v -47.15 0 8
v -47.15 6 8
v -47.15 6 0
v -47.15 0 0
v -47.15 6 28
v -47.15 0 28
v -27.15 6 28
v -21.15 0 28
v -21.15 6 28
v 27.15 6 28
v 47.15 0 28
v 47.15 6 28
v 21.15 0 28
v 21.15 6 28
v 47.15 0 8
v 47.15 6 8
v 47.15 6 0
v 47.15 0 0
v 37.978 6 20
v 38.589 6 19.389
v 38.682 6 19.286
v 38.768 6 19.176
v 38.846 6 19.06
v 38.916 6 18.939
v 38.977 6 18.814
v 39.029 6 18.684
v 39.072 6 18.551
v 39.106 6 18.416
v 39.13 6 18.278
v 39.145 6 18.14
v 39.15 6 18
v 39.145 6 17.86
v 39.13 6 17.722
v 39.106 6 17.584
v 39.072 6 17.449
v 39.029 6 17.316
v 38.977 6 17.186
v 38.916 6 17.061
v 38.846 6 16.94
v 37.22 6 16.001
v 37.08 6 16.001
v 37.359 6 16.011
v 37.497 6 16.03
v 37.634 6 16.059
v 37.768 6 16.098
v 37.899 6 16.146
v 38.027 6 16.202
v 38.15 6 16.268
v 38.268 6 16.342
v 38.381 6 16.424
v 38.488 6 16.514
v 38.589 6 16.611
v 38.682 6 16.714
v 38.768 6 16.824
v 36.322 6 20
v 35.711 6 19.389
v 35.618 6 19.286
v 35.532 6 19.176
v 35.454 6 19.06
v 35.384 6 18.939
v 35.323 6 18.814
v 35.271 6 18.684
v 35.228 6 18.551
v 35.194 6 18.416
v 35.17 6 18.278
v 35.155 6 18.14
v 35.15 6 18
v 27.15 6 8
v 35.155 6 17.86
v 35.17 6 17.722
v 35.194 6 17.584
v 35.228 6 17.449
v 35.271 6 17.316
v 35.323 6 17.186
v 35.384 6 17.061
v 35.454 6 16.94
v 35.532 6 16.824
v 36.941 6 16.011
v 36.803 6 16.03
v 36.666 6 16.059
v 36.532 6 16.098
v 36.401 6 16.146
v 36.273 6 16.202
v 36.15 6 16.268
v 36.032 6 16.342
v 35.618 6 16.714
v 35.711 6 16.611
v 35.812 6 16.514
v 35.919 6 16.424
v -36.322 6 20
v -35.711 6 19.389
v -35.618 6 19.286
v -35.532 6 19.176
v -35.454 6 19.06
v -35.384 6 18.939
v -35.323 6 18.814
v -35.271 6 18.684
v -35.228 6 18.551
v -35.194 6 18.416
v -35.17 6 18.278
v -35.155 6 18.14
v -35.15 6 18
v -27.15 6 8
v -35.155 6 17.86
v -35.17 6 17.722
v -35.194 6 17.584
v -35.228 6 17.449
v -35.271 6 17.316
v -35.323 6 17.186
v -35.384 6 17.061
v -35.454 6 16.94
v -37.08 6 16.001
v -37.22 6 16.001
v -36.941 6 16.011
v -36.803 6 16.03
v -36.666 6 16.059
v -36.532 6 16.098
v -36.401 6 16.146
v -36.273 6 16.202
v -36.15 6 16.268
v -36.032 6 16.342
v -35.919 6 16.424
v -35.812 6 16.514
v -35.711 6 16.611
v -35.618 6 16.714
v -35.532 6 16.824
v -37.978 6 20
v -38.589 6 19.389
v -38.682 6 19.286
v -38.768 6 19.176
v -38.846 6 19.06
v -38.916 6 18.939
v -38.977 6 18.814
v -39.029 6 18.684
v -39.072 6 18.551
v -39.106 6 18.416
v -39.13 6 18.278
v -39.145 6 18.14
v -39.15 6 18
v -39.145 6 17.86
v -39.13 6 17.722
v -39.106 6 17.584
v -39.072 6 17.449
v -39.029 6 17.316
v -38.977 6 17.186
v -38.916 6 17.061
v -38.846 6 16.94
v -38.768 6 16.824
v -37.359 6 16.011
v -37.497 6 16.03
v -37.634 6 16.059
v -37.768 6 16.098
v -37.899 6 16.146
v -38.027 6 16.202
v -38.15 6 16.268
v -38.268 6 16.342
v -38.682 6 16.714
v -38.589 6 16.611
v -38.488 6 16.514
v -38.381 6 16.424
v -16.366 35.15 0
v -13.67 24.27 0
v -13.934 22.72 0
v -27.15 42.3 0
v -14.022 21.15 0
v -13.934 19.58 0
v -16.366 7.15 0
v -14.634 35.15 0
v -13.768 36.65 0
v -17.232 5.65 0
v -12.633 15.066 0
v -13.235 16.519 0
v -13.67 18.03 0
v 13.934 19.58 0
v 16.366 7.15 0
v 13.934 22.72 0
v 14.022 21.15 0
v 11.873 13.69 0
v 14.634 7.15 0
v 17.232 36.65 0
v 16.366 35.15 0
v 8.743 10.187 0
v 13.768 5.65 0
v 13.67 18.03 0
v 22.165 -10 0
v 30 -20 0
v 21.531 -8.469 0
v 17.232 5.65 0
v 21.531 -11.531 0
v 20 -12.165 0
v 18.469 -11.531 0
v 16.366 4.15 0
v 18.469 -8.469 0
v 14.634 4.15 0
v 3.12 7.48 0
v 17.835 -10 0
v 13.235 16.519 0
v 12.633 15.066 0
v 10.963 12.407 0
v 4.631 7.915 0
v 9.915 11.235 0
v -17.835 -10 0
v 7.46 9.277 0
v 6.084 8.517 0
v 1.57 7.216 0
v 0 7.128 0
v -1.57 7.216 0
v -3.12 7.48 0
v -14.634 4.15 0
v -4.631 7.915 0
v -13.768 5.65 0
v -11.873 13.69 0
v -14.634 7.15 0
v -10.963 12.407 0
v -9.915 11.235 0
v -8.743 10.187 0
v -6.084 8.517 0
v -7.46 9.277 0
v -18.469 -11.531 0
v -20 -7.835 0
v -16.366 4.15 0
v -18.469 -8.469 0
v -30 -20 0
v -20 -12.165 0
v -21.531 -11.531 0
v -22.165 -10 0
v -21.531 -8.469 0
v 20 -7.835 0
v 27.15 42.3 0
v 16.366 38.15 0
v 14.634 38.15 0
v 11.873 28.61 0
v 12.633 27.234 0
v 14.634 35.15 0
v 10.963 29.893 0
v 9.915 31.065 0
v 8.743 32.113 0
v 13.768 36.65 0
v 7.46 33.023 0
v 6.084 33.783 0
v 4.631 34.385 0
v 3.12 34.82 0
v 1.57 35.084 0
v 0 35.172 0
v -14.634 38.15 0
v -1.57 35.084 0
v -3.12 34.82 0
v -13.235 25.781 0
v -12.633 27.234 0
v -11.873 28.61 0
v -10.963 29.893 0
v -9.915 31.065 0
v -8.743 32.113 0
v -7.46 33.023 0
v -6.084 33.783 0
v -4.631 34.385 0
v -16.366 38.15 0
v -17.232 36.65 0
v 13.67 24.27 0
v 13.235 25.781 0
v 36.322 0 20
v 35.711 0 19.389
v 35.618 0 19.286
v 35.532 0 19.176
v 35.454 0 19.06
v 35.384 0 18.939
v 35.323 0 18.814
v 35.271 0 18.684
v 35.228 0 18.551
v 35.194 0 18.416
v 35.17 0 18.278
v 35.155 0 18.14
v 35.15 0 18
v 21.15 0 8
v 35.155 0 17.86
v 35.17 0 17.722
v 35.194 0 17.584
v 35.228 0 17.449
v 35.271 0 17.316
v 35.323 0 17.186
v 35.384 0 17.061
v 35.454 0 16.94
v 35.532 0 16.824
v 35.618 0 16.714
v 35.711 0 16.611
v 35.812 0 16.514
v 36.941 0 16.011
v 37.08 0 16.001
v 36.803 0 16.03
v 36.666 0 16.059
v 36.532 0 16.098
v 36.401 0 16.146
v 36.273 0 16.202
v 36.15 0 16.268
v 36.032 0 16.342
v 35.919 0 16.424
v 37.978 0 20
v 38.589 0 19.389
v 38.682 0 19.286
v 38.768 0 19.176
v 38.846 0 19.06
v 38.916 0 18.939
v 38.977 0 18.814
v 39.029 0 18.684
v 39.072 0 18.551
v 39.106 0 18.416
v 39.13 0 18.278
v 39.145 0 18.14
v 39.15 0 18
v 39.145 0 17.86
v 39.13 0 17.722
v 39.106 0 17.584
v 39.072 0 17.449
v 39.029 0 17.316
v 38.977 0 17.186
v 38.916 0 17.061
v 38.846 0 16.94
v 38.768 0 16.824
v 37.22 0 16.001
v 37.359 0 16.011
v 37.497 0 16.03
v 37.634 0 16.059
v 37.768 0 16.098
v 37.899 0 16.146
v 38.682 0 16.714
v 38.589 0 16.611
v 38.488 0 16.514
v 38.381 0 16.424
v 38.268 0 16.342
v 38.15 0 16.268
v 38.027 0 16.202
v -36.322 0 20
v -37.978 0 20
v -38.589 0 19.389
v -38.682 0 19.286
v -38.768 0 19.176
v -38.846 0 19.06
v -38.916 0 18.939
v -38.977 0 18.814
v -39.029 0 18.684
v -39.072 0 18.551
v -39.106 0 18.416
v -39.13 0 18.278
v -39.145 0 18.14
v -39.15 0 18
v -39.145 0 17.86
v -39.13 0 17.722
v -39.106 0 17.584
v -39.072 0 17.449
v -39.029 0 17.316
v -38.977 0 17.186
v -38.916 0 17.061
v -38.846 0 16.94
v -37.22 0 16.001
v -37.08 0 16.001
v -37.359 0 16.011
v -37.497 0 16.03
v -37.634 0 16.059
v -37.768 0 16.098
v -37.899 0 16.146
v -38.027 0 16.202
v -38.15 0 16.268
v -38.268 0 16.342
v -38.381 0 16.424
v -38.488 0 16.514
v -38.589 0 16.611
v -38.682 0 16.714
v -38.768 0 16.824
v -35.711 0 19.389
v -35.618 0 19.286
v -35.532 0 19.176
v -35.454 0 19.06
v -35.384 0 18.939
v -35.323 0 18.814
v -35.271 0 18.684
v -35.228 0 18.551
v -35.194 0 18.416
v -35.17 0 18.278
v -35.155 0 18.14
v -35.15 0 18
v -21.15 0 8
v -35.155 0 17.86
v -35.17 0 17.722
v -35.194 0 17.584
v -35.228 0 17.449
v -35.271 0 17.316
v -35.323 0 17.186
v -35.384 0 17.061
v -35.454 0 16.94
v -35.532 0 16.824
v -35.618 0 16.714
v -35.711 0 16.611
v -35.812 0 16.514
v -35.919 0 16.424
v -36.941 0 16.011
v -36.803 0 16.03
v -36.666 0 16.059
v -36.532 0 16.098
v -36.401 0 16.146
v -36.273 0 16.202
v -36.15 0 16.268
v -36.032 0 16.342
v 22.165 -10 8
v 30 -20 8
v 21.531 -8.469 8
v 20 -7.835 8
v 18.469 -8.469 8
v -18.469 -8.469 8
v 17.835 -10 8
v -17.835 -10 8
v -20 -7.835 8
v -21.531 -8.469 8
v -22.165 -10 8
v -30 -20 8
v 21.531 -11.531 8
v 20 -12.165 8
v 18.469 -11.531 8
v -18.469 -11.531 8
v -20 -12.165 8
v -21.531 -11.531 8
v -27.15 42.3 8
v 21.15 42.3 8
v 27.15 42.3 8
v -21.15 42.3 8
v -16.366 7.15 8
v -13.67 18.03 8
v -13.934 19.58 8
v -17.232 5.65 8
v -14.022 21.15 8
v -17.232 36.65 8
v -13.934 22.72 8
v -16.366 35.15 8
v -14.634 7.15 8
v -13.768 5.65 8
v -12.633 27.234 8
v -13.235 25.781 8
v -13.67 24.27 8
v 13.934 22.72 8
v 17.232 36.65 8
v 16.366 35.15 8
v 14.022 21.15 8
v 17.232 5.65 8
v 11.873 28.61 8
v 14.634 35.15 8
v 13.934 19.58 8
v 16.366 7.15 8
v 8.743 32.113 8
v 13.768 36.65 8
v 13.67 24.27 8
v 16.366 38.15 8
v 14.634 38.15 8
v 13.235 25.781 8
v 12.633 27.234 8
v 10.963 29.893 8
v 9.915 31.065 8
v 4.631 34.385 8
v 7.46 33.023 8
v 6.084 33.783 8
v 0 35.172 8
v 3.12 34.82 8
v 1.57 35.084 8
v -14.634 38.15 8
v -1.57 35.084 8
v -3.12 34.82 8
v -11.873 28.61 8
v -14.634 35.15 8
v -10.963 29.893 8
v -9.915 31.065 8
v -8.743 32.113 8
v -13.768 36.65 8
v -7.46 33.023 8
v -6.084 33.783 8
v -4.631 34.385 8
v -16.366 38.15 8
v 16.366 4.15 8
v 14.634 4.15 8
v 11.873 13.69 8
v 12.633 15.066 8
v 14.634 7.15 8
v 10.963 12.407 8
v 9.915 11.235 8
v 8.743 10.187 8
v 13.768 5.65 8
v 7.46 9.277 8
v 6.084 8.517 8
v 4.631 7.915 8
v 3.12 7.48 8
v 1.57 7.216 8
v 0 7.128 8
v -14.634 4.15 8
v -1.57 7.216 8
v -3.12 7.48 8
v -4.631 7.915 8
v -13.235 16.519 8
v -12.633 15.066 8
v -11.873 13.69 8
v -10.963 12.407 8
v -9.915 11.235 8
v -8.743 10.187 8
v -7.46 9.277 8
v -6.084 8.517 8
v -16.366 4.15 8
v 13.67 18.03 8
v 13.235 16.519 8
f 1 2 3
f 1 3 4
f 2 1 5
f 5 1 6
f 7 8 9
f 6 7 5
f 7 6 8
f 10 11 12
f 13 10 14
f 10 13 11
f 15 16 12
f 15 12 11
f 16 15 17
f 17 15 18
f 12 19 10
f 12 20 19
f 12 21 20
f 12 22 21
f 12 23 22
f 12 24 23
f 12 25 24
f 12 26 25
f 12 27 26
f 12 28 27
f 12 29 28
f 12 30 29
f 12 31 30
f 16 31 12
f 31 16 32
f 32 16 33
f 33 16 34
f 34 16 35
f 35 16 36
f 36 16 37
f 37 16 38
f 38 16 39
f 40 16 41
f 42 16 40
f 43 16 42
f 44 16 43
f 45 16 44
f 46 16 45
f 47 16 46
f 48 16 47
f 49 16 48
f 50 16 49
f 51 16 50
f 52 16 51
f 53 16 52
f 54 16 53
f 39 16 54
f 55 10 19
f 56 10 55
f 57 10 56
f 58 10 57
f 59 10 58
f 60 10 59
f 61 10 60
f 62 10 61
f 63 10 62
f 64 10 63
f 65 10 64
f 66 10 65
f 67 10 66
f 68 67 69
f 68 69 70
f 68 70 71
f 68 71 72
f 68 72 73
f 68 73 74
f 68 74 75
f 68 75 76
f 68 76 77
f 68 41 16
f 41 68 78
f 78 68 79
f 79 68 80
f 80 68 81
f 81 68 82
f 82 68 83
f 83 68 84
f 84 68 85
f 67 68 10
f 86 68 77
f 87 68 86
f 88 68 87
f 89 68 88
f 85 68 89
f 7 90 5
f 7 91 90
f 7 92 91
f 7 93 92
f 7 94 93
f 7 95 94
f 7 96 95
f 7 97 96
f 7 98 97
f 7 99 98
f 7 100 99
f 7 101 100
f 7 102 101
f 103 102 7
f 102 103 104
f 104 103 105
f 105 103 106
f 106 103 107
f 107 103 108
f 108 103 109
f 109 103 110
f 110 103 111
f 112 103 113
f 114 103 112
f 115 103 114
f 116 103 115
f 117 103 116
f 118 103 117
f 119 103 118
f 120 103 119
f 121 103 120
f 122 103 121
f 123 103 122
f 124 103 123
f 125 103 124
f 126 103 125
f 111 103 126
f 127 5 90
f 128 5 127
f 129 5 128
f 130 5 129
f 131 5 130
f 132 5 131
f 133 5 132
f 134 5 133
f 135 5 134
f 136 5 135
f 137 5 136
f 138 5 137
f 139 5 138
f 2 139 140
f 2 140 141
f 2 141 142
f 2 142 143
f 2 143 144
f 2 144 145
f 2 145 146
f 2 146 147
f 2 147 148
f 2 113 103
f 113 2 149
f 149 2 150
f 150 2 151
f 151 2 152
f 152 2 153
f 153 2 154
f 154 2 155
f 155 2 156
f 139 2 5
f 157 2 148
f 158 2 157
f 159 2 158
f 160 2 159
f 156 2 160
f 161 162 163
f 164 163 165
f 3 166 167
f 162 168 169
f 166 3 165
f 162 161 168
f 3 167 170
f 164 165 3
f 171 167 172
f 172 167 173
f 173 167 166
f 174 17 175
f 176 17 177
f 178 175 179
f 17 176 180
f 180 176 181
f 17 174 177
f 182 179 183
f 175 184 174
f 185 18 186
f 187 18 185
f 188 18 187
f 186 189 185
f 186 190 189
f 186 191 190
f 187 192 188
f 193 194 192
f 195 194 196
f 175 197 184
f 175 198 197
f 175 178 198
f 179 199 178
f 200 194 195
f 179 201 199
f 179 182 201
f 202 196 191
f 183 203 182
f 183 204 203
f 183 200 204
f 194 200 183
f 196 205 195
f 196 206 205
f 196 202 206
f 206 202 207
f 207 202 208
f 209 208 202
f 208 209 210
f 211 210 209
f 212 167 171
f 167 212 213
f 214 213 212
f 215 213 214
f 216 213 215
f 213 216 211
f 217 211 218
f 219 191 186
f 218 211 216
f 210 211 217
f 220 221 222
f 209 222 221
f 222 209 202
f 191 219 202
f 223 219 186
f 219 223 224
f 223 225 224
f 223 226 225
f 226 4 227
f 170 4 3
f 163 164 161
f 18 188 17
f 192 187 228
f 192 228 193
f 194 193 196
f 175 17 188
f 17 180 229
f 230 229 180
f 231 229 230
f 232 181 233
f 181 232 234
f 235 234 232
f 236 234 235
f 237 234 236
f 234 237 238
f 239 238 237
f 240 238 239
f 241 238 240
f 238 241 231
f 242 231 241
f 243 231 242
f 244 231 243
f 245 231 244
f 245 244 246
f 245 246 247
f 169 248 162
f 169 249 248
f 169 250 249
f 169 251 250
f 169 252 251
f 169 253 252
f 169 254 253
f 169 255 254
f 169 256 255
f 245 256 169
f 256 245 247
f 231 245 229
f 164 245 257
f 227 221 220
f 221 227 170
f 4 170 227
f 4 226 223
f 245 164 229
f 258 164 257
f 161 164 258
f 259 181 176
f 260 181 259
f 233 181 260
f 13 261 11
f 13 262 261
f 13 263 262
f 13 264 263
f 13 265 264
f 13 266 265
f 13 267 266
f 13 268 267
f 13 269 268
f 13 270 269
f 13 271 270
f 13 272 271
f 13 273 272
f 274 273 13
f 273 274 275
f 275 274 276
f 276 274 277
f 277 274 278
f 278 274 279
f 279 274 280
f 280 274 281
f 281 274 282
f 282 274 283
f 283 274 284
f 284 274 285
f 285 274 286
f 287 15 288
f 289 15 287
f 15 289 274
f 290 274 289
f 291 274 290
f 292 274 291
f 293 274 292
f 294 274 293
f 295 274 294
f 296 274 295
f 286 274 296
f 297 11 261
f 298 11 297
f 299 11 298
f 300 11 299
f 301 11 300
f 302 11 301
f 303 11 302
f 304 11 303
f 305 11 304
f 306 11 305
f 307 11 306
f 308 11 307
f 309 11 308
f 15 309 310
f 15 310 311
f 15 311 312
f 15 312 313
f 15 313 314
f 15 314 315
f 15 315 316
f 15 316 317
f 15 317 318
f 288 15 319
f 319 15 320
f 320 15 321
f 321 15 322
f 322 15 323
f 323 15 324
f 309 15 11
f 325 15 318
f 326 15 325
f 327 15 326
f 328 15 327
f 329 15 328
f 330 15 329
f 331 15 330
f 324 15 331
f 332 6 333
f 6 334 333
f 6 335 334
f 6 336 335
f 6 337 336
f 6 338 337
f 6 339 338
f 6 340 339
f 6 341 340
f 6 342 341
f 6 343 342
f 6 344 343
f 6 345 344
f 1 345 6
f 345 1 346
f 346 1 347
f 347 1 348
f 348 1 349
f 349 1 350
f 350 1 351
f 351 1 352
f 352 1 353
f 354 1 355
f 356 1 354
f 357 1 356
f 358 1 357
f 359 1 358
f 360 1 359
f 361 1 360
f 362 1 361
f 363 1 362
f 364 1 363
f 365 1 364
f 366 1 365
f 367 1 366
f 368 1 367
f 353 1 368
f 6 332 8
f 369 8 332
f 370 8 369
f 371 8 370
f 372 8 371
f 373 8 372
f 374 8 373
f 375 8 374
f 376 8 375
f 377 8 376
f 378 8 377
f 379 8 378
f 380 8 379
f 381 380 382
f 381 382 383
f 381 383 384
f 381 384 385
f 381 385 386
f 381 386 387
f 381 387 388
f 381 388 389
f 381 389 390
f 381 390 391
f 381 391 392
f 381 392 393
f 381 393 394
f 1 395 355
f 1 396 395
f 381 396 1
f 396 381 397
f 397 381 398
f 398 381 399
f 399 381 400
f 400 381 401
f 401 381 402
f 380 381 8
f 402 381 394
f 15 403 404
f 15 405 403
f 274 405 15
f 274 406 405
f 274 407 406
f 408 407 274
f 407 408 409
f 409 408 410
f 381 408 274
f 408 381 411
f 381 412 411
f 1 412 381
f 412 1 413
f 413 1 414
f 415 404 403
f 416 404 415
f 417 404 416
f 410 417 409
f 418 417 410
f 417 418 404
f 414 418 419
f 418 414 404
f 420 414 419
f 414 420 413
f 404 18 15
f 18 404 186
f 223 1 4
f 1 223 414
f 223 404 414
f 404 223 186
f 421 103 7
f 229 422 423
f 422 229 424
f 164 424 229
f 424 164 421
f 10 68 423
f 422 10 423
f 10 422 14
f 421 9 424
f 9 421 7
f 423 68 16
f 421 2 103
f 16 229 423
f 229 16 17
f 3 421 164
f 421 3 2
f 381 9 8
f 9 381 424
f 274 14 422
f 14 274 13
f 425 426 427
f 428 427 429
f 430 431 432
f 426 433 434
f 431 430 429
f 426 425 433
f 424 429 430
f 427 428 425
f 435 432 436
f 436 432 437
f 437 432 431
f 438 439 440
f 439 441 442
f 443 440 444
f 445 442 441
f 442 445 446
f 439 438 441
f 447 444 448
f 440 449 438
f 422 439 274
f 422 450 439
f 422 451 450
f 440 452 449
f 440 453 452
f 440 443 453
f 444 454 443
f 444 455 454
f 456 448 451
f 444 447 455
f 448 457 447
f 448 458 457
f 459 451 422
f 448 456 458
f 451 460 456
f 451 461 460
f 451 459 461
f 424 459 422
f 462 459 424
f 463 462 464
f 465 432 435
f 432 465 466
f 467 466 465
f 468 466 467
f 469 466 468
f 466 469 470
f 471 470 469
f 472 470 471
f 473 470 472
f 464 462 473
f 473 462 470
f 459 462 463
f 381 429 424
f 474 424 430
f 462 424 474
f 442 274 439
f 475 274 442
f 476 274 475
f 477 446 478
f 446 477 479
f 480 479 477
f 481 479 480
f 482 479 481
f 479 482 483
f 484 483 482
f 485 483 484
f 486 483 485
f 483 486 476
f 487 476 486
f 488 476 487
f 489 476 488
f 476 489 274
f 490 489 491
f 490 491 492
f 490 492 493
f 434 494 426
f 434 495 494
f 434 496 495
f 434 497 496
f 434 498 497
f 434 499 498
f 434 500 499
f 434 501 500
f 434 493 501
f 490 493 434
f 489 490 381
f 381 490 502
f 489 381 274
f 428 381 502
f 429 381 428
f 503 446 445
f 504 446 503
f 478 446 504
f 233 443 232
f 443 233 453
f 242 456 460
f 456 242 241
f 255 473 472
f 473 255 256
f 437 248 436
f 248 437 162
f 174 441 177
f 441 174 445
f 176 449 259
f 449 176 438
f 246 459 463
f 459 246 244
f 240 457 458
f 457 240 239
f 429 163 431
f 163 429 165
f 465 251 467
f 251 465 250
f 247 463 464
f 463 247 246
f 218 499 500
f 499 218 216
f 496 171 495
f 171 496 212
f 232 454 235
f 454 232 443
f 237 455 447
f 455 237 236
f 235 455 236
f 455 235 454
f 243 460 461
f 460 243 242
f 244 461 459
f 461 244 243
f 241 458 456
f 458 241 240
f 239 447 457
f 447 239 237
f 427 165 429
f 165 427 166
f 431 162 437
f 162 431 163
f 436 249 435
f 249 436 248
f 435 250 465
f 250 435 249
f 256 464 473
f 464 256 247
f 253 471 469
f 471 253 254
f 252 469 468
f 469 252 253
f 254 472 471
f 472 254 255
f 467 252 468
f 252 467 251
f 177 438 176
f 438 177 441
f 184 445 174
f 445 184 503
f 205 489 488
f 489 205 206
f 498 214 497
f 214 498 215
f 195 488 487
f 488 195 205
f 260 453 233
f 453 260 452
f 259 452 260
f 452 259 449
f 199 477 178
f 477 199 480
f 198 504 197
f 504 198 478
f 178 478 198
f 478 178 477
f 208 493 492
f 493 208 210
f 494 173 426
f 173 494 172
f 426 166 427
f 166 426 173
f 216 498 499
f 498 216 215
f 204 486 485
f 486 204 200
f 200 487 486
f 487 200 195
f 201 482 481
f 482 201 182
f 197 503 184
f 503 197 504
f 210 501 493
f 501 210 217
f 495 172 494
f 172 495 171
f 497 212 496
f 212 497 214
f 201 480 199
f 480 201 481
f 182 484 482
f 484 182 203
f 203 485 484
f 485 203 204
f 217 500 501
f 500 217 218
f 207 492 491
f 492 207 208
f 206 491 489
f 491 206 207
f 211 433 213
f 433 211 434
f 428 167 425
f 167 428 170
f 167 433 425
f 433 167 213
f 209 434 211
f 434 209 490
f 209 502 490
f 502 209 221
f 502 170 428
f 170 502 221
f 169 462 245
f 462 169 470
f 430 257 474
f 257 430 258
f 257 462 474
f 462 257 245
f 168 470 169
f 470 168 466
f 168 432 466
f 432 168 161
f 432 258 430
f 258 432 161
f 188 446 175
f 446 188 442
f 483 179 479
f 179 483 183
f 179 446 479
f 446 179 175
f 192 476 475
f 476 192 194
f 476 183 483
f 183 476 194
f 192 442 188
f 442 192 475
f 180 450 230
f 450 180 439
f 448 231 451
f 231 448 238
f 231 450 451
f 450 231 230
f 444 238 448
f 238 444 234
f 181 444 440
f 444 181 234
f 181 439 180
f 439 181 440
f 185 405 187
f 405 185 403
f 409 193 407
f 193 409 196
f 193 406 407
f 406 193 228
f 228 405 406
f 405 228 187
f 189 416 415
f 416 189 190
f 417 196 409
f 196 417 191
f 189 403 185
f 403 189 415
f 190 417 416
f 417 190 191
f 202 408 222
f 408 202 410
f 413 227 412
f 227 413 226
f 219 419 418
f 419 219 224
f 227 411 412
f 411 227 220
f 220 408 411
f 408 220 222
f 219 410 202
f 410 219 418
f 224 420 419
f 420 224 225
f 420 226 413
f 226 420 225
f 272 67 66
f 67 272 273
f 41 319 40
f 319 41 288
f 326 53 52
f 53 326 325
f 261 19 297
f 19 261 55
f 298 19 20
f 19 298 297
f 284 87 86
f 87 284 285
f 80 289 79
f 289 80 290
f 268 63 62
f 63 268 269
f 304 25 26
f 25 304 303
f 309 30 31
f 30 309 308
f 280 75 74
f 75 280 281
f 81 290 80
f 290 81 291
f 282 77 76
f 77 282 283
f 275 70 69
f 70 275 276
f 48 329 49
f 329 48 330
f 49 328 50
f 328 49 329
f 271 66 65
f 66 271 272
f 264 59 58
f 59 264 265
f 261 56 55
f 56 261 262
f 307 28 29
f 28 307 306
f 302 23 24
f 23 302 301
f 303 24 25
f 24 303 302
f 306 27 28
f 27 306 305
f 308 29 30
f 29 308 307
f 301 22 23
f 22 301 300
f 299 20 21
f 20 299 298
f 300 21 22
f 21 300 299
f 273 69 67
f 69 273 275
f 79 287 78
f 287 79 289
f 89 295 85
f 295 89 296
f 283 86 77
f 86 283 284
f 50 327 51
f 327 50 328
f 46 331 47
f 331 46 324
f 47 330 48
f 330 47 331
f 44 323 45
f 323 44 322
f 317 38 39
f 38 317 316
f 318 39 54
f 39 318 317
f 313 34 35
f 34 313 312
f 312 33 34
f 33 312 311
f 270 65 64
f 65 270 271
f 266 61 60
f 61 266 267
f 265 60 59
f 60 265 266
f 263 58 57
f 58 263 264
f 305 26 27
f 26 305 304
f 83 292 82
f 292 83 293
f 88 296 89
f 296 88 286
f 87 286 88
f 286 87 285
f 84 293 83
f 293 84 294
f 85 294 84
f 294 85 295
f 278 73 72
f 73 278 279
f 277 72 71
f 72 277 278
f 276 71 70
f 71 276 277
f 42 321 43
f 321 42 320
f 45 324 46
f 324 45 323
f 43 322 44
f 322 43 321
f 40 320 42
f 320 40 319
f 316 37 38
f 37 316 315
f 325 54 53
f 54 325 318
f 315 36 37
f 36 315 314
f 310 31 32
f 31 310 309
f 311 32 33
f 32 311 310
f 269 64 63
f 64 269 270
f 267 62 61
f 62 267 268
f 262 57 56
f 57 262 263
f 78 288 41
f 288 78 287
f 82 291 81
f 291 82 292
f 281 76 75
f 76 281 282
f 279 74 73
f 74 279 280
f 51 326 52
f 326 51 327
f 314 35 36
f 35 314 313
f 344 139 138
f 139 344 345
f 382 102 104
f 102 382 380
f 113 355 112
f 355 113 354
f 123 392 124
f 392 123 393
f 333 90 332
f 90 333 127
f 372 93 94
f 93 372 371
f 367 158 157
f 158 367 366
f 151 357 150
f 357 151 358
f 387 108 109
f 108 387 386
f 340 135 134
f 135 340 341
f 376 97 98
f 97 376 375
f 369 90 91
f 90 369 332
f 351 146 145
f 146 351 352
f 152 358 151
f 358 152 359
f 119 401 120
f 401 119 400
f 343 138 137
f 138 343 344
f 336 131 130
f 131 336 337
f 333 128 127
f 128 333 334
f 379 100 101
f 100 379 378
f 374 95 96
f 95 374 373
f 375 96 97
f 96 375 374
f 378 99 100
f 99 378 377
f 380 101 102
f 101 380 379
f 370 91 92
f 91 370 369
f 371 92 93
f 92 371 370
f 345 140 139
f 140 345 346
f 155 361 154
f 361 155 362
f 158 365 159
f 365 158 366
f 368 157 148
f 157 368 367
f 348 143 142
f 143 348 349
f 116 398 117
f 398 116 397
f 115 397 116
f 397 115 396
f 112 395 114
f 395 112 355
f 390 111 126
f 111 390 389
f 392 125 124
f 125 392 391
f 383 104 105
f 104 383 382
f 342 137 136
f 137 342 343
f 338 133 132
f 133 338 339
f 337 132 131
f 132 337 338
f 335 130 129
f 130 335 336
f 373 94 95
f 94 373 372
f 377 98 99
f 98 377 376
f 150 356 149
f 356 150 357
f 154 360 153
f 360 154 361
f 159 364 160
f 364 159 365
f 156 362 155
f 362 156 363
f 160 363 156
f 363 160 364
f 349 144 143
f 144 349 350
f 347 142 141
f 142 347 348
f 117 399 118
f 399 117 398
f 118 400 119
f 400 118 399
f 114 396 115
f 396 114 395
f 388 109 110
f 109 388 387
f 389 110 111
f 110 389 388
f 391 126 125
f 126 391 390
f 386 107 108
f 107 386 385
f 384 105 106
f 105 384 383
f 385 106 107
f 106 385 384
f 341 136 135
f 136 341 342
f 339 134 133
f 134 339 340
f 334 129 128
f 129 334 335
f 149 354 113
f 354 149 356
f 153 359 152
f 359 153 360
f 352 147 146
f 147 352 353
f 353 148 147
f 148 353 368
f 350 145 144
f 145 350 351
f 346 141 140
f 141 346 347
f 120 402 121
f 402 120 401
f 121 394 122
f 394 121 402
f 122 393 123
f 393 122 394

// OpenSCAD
// file: trunctear.scad
//A module for truncated tear drops.

trunctear(1, 0.5, $fn = 90);

module trunctear(hei, radian, cent = false)
{
    linear_extrude(height = hei, center = cent)
        hull()
        {
            circle(r = radian);
            translate([0, radian/2])
                square([2*(radian*(2*cos(45)-1)), radian], center = true);
        }
}
// file: polyhole.scad
// The Cylinder is dead! Long live the Cylinder!
// A module for a polyhole by radius, based on Nophead's work.

module polyhole(h, r, cent = false)
{
    n = max(round(4 * r), 3);
    cylinder(h = h, r = r / cos(180 / n), $fn = n, center = cent);
}
// main file
// A mount for the z-axis motor

use<polyhole.scad>
use<trunctear.scad>

ZMotorMount();

module ZMotorMount()
{
    difference()
    {
        union()
        {
            translate([0, 3, 14])
                cube([42.3+12+40, 6, 28], center = true);
            hull()
            {
                translate([0, 3, 4])
                    cube([42.3+12+40, 6, 8], center = true);
                translate([0, -19, 4])
                    cube([60, 2, 8], center = true);
            }
            hull()
            {
                translate([0, 42.3/2, 4])
                    cube([42.3+12, 42.3, 8], center = true);
                translate([0, 3, 14])
                    cube([42.3+12, 6, 28], center = true);
            }
            hull()
            {
                translate([0, 42.3/2, 4])
                    cube([42.3+12, 42.3, 8], center = true);
                translate([0, 3, 4])
                    cube([42.3+12+40, 6, 8], center = true);
            }
        }
        translate([0, 42.3/2, 18])
            cube([42.3, 42.3, 20], center = true);
        translate([0, 42.3/2, 0])
            polyhole(8, 14);
        translate([-15.5, 5.65, 0])
            polyhole(8, 1.5);
        translate([-15.5, 36.65, 0])
            polyhole(8, 1.5);
        translate([15.5, 5.65, 0])
            polyhole(8, 1.5);
        translate([15.5, 36.65, 0])
            polyhole(8, 1.5);
        translate([20, -10, 0])
            polyhole(8, 2);
        translate([-20, -10, 0])
            polyhole(8, 2);
        translate([(42.3+12+40)/2-10, 0, 18])
            rotate([90, 0, 180])
                trunctear(8, 2, $fn = 90);
        translate([-(42.3+12+40)/2+10, 0, 18])
            rotate([90, 0, 180])
                trunctear(8, 2, $fn = 90);
    }
}
